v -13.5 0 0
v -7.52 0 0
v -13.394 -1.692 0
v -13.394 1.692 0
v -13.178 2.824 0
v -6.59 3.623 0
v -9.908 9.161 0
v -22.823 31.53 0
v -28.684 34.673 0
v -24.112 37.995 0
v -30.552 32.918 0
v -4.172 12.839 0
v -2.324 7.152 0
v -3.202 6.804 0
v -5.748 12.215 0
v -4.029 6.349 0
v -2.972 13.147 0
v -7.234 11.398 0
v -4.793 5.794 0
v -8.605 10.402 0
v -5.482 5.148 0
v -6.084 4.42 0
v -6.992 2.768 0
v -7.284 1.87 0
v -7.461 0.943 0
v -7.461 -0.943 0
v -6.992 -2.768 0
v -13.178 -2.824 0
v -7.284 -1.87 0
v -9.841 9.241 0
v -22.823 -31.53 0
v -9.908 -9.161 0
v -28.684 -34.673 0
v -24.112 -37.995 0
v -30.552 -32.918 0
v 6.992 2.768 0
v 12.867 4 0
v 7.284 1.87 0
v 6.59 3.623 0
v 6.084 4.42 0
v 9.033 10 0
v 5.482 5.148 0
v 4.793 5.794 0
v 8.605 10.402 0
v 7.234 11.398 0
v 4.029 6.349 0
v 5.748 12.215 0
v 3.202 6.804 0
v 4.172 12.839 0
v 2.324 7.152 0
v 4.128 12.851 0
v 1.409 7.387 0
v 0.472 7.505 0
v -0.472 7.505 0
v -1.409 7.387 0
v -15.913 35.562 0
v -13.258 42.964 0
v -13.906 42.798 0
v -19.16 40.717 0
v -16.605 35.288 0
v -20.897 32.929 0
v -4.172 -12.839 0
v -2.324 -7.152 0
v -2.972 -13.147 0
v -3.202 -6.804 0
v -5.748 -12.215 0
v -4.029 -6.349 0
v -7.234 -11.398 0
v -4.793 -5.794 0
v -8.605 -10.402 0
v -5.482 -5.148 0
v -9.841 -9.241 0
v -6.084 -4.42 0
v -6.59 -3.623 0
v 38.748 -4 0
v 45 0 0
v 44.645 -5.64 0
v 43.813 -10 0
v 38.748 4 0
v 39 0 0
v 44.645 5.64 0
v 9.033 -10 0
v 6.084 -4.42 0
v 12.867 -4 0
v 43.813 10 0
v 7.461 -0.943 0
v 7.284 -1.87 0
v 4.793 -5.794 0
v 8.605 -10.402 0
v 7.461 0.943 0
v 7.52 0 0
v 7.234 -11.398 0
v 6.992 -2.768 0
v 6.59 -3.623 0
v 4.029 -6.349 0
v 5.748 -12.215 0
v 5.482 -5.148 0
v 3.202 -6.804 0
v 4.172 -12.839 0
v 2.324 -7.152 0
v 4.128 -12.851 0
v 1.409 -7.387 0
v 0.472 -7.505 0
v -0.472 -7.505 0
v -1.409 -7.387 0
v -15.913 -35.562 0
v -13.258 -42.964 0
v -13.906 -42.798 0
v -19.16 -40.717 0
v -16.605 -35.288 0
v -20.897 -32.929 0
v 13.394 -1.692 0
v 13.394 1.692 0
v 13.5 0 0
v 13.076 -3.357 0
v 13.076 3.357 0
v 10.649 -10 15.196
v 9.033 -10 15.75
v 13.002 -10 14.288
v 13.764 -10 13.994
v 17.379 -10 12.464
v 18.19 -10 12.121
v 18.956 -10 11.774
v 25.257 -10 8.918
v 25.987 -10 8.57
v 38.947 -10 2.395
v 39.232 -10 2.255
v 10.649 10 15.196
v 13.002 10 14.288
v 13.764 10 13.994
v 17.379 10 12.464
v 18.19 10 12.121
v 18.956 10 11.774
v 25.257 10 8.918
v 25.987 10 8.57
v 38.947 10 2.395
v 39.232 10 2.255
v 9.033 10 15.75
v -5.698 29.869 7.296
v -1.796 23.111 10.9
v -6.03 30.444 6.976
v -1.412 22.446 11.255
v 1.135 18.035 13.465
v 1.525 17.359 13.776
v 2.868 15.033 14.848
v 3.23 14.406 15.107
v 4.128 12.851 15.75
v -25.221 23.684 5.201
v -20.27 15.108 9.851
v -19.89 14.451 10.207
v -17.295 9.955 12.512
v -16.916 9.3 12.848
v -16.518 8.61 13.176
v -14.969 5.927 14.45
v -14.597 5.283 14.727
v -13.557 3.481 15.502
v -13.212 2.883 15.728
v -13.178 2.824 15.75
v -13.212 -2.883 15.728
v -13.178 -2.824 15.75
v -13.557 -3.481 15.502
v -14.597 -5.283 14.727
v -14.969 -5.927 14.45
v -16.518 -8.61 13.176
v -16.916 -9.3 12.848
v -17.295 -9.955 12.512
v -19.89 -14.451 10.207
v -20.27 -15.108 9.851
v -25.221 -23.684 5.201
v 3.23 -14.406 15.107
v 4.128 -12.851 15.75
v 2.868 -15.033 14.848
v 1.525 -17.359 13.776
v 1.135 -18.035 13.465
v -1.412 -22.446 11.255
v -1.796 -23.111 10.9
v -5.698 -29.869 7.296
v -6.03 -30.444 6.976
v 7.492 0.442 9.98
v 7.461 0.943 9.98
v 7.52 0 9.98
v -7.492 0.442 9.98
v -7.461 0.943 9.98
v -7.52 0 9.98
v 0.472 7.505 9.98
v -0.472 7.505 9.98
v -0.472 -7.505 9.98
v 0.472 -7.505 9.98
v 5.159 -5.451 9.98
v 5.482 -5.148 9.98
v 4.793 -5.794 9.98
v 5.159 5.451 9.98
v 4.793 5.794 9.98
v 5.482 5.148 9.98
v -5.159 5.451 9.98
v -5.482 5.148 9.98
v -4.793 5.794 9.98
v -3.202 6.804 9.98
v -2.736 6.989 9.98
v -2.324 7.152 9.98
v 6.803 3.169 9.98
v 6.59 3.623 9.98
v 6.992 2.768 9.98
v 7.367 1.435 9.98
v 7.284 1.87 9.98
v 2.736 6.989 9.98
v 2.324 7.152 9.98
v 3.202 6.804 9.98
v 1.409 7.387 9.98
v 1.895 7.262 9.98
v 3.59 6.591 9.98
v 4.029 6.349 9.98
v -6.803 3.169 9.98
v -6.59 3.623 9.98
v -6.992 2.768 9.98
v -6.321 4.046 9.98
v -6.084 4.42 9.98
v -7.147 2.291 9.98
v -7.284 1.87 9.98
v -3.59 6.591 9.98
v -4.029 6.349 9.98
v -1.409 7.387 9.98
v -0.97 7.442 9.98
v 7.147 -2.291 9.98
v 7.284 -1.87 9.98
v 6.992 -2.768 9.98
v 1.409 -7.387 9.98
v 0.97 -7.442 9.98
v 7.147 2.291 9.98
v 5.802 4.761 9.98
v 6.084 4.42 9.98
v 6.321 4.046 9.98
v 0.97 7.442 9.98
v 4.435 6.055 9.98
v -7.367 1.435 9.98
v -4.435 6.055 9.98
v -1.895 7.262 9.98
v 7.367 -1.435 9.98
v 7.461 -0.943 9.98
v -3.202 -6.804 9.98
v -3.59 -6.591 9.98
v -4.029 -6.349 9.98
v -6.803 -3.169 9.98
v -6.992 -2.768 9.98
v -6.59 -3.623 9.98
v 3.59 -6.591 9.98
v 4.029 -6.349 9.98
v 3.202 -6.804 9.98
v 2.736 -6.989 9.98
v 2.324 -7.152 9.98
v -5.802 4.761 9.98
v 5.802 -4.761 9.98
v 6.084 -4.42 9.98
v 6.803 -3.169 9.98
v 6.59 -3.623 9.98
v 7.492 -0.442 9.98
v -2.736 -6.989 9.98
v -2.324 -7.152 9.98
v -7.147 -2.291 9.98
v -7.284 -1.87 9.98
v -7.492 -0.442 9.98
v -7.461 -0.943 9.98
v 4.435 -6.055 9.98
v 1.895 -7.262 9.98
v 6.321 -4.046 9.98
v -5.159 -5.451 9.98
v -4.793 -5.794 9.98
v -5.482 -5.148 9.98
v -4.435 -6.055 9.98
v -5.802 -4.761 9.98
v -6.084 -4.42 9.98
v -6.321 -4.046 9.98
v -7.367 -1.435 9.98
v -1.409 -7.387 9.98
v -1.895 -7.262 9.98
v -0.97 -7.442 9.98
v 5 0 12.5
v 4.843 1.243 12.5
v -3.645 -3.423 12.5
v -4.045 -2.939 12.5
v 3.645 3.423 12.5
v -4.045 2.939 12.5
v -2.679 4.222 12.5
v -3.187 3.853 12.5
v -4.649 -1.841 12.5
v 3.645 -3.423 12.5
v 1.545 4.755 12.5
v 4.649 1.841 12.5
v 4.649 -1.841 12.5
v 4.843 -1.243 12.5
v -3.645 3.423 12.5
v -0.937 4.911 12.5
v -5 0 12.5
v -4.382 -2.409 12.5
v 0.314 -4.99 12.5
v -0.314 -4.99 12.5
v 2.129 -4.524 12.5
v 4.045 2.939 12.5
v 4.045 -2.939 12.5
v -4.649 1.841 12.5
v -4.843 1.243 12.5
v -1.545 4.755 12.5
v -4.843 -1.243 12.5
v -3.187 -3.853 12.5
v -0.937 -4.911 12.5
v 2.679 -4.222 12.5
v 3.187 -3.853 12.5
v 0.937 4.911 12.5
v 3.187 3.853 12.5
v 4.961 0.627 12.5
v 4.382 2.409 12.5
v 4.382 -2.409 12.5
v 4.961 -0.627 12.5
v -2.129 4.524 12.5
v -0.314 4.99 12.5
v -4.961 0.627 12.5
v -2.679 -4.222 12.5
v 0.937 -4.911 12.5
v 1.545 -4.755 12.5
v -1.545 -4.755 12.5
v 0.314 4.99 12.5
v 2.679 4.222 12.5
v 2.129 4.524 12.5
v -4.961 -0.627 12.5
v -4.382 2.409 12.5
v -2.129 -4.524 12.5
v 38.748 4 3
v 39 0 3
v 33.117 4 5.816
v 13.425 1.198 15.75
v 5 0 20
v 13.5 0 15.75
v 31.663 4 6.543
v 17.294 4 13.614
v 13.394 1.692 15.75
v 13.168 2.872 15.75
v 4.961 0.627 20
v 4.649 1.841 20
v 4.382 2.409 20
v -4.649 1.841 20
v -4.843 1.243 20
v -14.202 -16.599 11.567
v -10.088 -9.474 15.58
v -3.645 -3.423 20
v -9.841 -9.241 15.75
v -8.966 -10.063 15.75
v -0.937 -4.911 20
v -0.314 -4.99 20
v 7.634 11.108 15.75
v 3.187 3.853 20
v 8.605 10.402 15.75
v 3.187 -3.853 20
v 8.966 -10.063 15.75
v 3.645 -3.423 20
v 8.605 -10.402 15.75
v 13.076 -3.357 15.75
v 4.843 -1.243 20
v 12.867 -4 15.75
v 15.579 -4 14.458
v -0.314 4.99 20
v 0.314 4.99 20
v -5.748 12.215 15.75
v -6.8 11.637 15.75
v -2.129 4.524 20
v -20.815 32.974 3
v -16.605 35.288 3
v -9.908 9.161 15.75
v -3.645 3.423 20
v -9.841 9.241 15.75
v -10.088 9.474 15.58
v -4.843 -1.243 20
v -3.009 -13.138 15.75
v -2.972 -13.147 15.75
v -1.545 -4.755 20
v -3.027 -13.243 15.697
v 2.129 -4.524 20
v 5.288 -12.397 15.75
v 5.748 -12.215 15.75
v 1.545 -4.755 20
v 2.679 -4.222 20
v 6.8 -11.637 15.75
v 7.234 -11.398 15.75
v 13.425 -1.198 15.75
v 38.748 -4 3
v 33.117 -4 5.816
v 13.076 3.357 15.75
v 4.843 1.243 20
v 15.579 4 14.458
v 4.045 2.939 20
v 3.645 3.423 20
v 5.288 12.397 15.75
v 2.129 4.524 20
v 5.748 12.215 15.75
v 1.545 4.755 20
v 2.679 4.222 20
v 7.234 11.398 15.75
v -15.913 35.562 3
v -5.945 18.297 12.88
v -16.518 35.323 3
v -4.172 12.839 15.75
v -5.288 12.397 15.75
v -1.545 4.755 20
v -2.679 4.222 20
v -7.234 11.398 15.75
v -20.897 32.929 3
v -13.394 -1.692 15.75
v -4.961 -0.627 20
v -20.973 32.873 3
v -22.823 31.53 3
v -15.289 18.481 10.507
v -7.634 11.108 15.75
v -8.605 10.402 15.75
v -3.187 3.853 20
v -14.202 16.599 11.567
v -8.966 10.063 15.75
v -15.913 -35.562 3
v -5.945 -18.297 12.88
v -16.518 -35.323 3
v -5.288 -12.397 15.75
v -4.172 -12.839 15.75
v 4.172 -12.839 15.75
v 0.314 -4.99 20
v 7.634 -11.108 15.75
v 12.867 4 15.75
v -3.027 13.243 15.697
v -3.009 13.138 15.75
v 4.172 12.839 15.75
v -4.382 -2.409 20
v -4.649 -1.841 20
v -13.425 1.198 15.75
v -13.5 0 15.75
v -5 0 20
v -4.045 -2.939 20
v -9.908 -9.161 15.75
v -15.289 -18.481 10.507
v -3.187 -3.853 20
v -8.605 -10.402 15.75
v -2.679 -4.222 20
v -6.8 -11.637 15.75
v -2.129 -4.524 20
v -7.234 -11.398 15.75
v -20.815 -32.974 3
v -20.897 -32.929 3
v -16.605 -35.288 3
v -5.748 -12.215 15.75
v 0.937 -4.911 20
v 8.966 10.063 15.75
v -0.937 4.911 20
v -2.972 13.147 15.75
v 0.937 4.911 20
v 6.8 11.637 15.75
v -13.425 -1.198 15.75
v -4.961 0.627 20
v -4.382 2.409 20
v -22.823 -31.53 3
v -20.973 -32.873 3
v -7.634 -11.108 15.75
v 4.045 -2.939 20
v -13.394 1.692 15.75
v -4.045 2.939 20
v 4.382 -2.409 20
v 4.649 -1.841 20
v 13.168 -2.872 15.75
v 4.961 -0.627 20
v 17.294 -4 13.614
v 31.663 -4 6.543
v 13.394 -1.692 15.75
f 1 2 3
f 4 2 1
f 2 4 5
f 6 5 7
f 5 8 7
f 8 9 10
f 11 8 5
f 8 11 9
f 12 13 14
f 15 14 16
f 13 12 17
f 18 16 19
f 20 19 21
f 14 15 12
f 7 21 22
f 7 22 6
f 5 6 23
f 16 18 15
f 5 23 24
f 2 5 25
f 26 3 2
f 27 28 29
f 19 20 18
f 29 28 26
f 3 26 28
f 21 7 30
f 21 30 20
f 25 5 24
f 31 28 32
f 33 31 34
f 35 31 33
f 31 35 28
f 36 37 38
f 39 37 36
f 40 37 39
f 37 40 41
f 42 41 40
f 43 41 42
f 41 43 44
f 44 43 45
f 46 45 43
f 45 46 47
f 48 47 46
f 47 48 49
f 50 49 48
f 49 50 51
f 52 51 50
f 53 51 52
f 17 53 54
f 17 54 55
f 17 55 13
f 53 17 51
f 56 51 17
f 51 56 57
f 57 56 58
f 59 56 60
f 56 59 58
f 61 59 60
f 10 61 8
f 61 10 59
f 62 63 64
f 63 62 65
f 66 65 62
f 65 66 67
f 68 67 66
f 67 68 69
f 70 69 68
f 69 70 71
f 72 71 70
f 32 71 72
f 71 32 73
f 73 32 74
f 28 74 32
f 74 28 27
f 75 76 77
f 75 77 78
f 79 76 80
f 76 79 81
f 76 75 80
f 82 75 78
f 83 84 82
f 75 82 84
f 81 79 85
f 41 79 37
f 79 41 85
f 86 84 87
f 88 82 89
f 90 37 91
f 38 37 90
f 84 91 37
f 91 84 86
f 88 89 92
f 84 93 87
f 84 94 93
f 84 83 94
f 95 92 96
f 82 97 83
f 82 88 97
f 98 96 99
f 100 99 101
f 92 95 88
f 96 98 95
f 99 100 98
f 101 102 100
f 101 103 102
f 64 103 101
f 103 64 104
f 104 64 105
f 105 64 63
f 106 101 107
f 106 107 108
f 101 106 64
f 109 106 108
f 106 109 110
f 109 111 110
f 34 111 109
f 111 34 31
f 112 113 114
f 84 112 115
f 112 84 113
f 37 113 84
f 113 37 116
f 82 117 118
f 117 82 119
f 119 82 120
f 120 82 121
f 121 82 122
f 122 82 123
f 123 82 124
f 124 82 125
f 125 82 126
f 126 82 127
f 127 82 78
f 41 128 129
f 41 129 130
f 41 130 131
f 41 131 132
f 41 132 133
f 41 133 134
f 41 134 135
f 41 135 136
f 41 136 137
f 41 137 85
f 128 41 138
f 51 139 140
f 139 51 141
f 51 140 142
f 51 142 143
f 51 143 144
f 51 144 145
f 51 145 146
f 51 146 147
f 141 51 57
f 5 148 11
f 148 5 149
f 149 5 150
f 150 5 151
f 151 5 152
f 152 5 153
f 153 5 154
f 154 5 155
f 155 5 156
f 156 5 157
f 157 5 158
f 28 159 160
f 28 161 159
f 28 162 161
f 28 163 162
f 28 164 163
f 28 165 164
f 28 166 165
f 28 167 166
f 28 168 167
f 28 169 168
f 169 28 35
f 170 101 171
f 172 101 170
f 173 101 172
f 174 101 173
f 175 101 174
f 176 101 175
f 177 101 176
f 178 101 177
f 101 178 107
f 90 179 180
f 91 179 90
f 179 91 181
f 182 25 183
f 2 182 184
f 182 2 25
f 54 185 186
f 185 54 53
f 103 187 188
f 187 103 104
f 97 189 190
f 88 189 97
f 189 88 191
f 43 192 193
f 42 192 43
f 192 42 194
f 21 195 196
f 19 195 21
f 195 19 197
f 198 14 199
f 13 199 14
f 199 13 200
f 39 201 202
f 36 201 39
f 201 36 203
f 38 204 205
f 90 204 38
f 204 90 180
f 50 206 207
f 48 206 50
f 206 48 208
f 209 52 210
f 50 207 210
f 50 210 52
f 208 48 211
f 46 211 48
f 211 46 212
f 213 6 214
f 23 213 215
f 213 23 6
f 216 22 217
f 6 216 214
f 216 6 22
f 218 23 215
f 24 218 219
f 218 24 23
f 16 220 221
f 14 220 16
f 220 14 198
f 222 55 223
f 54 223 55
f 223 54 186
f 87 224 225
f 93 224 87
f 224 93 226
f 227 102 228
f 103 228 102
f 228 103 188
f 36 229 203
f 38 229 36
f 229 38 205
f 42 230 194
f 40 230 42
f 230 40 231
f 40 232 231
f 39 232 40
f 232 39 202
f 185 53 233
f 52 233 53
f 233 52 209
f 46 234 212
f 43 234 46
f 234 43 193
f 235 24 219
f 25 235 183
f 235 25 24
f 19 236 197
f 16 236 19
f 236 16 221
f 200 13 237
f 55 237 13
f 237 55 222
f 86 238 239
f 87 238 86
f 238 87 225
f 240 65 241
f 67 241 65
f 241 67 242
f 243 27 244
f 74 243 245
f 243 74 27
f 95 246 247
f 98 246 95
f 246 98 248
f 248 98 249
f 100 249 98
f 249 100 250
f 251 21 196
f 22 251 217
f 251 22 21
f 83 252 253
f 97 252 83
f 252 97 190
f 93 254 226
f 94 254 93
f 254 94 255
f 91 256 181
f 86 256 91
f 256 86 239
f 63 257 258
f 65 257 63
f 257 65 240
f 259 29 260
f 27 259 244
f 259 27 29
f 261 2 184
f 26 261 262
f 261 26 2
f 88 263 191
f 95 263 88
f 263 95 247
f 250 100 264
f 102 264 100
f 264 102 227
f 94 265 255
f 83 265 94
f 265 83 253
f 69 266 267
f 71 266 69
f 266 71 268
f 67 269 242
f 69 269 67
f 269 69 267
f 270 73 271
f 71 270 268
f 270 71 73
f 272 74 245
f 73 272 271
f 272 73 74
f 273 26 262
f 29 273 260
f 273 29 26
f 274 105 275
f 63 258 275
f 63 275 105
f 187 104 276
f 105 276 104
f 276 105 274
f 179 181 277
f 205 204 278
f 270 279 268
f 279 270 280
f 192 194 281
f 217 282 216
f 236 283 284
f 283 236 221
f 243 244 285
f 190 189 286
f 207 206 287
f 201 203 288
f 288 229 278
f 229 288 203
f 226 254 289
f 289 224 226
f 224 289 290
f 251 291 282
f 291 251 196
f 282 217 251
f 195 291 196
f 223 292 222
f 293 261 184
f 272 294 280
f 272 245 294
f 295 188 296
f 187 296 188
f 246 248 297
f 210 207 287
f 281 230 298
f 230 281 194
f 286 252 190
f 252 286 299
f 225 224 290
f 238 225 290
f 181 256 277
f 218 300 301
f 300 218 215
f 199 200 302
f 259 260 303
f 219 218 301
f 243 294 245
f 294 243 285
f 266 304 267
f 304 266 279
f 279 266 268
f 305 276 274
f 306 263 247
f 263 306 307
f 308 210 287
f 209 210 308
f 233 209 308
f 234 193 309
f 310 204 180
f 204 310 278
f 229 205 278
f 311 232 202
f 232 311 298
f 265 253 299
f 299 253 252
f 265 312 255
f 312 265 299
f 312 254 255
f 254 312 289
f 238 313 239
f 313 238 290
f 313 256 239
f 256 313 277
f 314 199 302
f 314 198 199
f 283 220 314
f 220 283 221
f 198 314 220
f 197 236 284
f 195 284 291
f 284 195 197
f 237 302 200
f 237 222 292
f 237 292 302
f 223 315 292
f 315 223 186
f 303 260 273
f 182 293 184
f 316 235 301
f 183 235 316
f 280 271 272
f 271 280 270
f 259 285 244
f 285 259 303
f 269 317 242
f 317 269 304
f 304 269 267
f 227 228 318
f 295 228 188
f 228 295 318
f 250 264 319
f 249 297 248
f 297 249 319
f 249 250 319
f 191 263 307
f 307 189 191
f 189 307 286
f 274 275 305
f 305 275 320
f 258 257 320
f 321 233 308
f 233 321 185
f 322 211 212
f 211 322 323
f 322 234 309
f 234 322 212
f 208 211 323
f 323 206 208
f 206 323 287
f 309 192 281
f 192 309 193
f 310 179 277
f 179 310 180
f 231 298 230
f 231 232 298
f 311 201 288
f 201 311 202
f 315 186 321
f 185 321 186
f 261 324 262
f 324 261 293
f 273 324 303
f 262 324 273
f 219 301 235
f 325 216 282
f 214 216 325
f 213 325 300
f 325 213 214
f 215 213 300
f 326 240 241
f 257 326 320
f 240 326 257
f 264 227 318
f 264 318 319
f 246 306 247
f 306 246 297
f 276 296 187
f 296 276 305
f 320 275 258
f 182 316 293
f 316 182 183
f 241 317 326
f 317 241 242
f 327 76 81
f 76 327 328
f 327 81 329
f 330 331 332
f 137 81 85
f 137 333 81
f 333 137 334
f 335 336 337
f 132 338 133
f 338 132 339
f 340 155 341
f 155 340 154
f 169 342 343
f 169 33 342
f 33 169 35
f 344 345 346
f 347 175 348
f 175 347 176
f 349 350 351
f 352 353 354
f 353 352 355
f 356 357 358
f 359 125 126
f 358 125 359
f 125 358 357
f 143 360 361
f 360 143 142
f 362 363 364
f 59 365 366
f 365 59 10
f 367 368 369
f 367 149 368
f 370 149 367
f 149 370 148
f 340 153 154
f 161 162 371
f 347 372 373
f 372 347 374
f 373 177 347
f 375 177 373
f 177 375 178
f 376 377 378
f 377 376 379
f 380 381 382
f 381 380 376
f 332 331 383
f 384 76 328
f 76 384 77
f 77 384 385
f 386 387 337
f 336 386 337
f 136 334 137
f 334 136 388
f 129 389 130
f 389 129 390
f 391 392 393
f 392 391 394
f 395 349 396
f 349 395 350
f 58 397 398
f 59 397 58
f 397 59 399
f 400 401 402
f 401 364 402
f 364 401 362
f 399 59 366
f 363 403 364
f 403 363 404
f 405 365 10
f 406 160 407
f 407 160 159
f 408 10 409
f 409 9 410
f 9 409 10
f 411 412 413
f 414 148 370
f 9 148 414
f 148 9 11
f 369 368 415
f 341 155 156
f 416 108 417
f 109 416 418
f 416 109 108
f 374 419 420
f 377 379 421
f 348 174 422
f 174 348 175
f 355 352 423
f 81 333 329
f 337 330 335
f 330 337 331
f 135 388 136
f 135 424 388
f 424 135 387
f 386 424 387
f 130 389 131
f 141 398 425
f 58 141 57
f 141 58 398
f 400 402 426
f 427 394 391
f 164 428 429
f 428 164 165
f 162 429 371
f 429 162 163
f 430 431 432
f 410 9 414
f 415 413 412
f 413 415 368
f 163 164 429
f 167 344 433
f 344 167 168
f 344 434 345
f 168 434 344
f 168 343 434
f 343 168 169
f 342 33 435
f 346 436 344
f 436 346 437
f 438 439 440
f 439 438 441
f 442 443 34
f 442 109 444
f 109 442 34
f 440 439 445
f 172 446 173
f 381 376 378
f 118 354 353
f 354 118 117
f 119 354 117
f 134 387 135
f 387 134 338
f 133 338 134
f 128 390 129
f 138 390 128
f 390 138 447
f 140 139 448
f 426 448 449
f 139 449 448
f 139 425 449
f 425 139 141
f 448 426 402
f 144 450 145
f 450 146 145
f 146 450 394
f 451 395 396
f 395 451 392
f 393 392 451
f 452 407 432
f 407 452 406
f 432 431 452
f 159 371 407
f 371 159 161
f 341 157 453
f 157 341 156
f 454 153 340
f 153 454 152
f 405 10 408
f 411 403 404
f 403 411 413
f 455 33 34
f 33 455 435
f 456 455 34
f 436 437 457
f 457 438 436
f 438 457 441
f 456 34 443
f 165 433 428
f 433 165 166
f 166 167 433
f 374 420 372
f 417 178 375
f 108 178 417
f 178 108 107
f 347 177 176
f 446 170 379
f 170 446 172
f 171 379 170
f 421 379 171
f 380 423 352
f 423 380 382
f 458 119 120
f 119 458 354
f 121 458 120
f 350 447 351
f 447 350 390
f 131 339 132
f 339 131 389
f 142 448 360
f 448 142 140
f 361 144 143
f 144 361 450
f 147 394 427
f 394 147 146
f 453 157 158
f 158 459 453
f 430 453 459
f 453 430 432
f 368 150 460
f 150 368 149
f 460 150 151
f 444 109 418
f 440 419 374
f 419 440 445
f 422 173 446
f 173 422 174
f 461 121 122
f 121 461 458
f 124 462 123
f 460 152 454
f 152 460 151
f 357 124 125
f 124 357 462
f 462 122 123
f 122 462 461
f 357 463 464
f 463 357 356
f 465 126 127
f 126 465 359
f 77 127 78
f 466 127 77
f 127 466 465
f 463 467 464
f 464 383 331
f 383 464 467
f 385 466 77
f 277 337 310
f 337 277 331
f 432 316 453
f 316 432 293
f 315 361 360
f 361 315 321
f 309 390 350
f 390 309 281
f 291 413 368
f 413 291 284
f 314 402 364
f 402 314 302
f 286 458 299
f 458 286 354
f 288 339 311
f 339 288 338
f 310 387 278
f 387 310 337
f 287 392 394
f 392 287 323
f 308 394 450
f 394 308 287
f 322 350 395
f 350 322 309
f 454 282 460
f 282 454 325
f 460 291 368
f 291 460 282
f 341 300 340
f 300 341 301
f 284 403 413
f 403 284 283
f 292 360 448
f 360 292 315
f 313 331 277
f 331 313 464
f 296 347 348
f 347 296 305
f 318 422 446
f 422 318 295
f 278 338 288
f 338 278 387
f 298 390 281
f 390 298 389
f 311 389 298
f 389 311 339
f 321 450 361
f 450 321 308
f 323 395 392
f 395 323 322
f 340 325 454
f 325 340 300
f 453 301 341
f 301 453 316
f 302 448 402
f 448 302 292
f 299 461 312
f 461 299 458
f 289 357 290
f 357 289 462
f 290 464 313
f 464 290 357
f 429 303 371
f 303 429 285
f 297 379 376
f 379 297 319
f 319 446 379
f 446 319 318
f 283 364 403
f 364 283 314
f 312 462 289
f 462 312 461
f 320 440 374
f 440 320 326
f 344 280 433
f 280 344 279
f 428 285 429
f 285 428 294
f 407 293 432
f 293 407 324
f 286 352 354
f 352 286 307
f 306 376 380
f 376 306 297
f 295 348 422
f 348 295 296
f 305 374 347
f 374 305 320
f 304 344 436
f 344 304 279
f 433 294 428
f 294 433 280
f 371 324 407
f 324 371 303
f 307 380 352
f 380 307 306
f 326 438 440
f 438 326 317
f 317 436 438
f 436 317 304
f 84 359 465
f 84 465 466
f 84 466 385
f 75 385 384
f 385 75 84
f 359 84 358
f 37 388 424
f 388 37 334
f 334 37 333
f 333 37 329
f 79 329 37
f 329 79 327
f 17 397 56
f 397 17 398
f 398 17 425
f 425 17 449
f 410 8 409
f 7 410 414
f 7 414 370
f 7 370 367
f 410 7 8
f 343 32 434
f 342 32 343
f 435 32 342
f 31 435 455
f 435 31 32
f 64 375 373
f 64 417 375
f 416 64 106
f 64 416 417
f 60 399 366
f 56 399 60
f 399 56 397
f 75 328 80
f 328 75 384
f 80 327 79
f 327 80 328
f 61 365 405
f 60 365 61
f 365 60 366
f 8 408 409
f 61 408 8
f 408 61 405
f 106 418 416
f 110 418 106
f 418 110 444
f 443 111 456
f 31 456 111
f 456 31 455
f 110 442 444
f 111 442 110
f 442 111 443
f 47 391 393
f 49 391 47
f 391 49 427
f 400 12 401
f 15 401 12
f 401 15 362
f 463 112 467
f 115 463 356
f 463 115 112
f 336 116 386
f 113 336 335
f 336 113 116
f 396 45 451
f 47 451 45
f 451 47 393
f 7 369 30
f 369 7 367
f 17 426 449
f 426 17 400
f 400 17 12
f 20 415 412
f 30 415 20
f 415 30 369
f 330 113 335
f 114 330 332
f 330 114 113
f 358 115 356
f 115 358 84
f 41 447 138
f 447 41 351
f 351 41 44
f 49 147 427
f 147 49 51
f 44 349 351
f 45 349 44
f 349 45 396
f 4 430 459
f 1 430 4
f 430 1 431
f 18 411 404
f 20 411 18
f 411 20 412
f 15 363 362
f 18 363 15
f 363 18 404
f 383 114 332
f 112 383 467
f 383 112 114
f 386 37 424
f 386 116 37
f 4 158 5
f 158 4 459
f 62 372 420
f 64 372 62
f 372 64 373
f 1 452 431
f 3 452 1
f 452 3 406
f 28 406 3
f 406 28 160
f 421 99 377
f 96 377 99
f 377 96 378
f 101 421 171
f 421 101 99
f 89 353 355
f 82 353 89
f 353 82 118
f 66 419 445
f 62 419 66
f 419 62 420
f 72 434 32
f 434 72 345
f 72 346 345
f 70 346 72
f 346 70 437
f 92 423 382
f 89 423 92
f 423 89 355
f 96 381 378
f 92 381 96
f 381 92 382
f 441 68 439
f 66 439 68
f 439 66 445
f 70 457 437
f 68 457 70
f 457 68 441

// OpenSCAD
r = 45; h = 20; w = 20;

br = 7.5; bh = 10; ir = 5;
t = 6; e = 0.02; $fn = 50;
  
intersection() {
  difference() {
    cylinder(r1=r, r2=ir, h=h);
    translate([0,0,-e]) intersection() {
      cylinder(r=br+e, h=h+e);
      cylinder(r1=br+bh+e, r2=ir, h=br+bh-ir+e);
    }
    cylinder(r=ir, h=h+e);
  }

  union() {
    difference() {
      union() {
        translate([0,-w/2,0]) cube([r+e,w,h]);
        rotate(120) translate([0,-w/2,0]) cube([r+e,w,h]);
        rotate(240) translate([0,-w/2,0]) cube([r+e,w,h]);
      }
      intersection() {
        union() {
          translate([-e,-w/2+t,-e]) cube([r+e,w-2*t,h+2*e]);
          rotate(120) translate([-e,-w/2+t,-e]) cube([r+e,w-2*t,h+2*e]);
          rotate(240) translate([-e,-w/2+t,-e]) cube([r+e,w-2*t,h+2*e]);
        }
        translate([0,0,-e]) cylinder(r=r-t, h=h+2*e);
      }
    }
    cylinder(r=br+t, h=h);
  } 
}
